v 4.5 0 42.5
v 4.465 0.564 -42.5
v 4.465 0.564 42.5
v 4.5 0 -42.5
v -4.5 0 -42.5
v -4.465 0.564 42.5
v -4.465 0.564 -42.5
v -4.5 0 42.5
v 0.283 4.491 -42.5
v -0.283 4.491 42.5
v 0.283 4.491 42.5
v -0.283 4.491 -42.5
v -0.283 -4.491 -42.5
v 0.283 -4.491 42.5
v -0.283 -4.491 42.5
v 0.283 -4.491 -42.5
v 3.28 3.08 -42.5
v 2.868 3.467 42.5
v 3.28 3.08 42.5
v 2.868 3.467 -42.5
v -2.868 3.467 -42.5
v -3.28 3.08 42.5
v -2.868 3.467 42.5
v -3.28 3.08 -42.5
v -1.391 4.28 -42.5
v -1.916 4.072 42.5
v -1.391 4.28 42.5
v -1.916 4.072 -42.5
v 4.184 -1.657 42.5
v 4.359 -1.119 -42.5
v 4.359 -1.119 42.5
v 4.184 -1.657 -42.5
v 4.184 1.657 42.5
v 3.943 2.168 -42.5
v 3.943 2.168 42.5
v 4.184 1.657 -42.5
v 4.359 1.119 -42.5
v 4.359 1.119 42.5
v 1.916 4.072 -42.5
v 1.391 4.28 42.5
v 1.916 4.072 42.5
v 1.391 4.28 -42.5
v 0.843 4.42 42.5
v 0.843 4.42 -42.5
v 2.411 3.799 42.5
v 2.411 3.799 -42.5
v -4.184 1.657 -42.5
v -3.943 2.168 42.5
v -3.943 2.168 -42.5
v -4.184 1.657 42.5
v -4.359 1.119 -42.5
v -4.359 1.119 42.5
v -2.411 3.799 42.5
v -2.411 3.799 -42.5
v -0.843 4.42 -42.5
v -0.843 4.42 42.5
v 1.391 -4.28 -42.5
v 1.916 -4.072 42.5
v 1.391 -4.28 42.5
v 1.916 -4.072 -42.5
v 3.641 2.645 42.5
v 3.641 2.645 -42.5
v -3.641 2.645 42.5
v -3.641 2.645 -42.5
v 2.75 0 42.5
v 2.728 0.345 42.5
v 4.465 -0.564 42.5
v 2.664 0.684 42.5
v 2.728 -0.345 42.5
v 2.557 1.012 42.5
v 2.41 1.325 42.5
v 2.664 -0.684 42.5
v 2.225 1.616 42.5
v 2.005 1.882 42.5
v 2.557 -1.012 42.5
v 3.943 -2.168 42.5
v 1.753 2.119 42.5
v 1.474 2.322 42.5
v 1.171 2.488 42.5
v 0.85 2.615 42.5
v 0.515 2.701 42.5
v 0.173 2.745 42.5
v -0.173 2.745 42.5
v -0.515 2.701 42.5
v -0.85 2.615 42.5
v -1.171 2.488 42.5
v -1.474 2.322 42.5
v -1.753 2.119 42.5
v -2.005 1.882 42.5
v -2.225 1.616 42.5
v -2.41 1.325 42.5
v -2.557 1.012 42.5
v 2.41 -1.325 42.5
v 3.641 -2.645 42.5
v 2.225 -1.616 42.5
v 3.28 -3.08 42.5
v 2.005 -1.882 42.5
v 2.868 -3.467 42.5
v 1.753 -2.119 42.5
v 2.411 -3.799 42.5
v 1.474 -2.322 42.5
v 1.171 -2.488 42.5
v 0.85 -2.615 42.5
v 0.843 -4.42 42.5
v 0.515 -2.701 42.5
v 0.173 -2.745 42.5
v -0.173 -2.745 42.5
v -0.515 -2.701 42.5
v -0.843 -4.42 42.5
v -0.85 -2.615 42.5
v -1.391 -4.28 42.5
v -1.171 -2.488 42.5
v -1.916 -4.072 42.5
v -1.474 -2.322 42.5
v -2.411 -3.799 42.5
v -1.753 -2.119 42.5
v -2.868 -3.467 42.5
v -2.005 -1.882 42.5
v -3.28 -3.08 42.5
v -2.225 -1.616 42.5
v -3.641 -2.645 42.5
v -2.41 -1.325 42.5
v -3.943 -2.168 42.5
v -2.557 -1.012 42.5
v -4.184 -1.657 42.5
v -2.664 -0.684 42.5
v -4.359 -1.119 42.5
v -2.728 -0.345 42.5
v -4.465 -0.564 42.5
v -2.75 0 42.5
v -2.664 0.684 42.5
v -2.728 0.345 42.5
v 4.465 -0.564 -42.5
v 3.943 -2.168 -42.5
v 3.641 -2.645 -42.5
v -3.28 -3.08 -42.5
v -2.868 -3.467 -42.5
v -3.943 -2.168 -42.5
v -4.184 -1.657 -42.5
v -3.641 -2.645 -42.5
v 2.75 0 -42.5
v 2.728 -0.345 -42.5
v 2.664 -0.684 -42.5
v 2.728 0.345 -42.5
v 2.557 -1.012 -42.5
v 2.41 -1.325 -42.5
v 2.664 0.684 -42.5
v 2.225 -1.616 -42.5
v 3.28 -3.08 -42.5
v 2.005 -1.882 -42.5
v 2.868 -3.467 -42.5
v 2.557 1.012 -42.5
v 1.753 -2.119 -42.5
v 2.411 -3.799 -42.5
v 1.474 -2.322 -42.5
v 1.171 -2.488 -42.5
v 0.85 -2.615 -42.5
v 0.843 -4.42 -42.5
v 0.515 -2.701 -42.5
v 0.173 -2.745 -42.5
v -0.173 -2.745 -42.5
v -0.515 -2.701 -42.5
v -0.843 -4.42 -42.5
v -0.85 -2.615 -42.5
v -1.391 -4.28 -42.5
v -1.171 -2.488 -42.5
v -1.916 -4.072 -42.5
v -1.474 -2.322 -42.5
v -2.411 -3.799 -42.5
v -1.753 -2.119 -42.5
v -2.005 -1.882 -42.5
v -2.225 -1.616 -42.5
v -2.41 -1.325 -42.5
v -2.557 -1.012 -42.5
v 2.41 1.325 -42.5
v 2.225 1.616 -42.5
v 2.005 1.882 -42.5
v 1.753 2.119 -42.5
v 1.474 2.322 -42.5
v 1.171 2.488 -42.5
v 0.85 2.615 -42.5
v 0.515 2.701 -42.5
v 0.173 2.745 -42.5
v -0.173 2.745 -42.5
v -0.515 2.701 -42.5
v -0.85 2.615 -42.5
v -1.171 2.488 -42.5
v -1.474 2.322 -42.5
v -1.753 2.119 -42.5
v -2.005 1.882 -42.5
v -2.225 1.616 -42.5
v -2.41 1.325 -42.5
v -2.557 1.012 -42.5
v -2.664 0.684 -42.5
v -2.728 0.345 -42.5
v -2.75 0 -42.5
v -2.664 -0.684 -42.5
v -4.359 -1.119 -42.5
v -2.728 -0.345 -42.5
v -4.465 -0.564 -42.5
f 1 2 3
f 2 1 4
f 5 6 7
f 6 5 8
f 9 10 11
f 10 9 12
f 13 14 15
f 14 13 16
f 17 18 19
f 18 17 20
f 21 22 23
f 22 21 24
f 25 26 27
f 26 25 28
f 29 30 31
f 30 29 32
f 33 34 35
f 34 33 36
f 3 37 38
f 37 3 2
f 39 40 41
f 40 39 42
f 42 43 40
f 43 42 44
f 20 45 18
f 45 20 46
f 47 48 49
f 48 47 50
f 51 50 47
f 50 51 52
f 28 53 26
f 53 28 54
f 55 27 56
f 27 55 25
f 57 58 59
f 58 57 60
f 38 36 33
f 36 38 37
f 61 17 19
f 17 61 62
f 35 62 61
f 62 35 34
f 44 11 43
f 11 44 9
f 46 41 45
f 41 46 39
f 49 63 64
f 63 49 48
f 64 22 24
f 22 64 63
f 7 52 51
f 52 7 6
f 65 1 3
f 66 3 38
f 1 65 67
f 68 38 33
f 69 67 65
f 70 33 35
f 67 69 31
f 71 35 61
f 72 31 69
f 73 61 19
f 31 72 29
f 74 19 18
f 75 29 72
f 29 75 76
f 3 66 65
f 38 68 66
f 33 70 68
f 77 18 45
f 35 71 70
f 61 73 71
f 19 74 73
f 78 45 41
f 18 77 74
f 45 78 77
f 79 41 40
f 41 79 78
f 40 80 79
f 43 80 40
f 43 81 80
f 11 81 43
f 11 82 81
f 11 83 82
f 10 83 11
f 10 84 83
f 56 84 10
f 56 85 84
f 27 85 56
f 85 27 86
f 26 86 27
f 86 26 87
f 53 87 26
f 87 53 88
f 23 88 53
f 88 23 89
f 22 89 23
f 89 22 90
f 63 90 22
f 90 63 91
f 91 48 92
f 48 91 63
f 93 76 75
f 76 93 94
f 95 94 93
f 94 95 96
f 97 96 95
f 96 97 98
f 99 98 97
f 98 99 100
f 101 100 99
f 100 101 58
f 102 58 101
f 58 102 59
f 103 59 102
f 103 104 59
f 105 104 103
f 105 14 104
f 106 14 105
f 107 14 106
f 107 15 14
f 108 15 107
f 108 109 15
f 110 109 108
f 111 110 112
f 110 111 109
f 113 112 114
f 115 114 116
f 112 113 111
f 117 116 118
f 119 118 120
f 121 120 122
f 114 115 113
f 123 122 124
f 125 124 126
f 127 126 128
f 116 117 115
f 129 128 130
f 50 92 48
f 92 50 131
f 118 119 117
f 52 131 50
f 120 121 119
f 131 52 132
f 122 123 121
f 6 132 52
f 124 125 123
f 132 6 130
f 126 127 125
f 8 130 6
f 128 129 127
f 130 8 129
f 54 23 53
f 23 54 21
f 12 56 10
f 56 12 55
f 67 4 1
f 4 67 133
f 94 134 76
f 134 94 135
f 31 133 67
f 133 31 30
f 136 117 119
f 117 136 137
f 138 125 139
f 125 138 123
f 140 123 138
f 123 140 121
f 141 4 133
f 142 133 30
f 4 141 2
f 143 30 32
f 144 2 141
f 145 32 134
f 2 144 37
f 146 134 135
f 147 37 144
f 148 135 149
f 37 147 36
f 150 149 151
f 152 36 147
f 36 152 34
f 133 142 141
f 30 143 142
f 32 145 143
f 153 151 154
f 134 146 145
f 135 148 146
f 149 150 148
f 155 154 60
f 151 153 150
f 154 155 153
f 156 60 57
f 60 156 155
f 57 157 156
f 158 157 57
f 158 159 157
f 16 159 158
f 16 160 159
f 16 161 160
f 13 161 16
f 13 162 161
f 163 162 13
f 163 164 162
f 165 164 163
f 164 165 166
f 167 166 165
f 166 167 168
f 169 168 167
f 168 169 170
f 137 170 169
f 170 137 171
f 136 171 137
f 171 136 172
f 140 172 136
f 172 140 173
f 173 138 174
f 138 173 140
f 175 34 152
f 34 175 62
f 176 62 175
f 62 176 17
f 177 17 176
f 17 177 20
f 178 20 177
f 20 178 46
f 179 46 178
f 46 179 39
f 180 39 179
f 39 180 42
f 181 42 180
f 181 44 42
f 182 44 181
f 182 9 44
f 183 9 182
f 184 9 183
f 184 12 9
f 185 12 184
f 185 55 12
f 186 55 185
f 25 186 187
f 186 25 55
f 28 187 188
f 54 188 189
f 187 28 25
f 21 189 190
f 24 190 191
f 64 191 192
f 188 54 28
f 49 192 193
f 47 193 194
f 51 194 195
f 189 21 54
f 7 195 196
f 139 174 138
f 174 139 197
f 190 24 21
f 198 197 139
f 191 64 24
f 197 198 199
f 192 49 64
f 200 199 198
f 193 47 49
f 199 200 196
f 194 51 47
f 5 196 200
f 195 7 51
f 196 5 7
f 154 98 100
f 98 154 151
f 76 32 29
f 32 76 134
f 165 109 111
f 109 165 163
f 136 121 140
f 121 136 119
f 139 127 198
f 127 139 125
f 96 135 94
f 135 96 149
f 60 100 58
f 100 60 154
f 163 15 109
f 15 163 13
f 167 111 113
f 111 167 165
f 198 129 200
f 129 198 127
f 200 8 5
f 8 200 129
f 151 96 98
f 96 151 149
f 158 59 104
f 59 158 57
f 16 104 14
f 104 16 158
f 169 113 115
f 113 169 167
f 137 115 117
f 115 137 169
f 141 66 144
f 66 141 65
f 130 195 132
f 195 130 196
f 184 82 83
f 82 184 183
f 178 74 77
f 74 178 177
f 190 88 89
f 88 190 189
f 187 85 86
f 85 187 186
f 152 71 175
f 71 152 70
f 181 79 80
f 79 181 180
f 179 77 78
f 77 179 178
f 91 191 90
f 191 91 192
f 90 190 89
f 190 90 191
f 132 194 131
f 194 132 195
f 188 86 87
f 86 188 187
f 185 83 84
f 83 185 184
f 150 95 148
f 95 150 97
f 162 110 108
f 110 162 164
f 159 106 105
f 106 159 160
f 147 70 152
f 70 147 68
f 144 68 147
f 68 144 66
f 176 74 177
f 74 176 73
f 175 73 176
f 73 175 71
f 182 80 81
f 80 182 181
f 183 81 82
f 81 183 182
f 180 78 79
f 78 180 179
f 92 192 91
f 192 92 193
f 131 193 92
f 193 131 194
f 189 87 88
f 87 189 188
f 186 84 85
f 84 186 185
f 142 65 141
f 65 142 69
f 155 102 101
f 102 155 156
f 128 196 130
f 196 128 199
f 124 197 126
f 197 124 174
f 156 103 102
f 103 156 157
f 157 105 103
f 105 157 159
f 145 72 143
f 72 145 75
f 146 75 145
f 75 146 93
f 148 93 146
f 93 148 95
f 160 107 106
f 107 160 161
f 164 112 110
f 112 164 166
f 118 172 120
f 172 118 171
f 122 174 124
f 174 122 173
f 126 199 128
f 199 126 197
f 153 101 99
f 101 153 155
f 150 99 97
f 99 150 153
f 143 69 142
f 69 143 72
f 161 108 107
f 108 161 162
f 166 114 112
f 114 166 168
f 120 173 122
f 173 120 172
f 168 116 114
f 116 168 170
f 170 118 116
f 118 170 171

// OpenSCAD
$fn = 50;


difference() {
	union() {
		translate(v = [0, 0, -42.5000000000]) {
			cylinder(h = 85, r = 4.5000000000);
		}
	}
	union() {
		translate(v = [0, 0, -100.0000000000]) {
			cylinder(h = 200, r = 2.7500000000);
		}
	}
}
